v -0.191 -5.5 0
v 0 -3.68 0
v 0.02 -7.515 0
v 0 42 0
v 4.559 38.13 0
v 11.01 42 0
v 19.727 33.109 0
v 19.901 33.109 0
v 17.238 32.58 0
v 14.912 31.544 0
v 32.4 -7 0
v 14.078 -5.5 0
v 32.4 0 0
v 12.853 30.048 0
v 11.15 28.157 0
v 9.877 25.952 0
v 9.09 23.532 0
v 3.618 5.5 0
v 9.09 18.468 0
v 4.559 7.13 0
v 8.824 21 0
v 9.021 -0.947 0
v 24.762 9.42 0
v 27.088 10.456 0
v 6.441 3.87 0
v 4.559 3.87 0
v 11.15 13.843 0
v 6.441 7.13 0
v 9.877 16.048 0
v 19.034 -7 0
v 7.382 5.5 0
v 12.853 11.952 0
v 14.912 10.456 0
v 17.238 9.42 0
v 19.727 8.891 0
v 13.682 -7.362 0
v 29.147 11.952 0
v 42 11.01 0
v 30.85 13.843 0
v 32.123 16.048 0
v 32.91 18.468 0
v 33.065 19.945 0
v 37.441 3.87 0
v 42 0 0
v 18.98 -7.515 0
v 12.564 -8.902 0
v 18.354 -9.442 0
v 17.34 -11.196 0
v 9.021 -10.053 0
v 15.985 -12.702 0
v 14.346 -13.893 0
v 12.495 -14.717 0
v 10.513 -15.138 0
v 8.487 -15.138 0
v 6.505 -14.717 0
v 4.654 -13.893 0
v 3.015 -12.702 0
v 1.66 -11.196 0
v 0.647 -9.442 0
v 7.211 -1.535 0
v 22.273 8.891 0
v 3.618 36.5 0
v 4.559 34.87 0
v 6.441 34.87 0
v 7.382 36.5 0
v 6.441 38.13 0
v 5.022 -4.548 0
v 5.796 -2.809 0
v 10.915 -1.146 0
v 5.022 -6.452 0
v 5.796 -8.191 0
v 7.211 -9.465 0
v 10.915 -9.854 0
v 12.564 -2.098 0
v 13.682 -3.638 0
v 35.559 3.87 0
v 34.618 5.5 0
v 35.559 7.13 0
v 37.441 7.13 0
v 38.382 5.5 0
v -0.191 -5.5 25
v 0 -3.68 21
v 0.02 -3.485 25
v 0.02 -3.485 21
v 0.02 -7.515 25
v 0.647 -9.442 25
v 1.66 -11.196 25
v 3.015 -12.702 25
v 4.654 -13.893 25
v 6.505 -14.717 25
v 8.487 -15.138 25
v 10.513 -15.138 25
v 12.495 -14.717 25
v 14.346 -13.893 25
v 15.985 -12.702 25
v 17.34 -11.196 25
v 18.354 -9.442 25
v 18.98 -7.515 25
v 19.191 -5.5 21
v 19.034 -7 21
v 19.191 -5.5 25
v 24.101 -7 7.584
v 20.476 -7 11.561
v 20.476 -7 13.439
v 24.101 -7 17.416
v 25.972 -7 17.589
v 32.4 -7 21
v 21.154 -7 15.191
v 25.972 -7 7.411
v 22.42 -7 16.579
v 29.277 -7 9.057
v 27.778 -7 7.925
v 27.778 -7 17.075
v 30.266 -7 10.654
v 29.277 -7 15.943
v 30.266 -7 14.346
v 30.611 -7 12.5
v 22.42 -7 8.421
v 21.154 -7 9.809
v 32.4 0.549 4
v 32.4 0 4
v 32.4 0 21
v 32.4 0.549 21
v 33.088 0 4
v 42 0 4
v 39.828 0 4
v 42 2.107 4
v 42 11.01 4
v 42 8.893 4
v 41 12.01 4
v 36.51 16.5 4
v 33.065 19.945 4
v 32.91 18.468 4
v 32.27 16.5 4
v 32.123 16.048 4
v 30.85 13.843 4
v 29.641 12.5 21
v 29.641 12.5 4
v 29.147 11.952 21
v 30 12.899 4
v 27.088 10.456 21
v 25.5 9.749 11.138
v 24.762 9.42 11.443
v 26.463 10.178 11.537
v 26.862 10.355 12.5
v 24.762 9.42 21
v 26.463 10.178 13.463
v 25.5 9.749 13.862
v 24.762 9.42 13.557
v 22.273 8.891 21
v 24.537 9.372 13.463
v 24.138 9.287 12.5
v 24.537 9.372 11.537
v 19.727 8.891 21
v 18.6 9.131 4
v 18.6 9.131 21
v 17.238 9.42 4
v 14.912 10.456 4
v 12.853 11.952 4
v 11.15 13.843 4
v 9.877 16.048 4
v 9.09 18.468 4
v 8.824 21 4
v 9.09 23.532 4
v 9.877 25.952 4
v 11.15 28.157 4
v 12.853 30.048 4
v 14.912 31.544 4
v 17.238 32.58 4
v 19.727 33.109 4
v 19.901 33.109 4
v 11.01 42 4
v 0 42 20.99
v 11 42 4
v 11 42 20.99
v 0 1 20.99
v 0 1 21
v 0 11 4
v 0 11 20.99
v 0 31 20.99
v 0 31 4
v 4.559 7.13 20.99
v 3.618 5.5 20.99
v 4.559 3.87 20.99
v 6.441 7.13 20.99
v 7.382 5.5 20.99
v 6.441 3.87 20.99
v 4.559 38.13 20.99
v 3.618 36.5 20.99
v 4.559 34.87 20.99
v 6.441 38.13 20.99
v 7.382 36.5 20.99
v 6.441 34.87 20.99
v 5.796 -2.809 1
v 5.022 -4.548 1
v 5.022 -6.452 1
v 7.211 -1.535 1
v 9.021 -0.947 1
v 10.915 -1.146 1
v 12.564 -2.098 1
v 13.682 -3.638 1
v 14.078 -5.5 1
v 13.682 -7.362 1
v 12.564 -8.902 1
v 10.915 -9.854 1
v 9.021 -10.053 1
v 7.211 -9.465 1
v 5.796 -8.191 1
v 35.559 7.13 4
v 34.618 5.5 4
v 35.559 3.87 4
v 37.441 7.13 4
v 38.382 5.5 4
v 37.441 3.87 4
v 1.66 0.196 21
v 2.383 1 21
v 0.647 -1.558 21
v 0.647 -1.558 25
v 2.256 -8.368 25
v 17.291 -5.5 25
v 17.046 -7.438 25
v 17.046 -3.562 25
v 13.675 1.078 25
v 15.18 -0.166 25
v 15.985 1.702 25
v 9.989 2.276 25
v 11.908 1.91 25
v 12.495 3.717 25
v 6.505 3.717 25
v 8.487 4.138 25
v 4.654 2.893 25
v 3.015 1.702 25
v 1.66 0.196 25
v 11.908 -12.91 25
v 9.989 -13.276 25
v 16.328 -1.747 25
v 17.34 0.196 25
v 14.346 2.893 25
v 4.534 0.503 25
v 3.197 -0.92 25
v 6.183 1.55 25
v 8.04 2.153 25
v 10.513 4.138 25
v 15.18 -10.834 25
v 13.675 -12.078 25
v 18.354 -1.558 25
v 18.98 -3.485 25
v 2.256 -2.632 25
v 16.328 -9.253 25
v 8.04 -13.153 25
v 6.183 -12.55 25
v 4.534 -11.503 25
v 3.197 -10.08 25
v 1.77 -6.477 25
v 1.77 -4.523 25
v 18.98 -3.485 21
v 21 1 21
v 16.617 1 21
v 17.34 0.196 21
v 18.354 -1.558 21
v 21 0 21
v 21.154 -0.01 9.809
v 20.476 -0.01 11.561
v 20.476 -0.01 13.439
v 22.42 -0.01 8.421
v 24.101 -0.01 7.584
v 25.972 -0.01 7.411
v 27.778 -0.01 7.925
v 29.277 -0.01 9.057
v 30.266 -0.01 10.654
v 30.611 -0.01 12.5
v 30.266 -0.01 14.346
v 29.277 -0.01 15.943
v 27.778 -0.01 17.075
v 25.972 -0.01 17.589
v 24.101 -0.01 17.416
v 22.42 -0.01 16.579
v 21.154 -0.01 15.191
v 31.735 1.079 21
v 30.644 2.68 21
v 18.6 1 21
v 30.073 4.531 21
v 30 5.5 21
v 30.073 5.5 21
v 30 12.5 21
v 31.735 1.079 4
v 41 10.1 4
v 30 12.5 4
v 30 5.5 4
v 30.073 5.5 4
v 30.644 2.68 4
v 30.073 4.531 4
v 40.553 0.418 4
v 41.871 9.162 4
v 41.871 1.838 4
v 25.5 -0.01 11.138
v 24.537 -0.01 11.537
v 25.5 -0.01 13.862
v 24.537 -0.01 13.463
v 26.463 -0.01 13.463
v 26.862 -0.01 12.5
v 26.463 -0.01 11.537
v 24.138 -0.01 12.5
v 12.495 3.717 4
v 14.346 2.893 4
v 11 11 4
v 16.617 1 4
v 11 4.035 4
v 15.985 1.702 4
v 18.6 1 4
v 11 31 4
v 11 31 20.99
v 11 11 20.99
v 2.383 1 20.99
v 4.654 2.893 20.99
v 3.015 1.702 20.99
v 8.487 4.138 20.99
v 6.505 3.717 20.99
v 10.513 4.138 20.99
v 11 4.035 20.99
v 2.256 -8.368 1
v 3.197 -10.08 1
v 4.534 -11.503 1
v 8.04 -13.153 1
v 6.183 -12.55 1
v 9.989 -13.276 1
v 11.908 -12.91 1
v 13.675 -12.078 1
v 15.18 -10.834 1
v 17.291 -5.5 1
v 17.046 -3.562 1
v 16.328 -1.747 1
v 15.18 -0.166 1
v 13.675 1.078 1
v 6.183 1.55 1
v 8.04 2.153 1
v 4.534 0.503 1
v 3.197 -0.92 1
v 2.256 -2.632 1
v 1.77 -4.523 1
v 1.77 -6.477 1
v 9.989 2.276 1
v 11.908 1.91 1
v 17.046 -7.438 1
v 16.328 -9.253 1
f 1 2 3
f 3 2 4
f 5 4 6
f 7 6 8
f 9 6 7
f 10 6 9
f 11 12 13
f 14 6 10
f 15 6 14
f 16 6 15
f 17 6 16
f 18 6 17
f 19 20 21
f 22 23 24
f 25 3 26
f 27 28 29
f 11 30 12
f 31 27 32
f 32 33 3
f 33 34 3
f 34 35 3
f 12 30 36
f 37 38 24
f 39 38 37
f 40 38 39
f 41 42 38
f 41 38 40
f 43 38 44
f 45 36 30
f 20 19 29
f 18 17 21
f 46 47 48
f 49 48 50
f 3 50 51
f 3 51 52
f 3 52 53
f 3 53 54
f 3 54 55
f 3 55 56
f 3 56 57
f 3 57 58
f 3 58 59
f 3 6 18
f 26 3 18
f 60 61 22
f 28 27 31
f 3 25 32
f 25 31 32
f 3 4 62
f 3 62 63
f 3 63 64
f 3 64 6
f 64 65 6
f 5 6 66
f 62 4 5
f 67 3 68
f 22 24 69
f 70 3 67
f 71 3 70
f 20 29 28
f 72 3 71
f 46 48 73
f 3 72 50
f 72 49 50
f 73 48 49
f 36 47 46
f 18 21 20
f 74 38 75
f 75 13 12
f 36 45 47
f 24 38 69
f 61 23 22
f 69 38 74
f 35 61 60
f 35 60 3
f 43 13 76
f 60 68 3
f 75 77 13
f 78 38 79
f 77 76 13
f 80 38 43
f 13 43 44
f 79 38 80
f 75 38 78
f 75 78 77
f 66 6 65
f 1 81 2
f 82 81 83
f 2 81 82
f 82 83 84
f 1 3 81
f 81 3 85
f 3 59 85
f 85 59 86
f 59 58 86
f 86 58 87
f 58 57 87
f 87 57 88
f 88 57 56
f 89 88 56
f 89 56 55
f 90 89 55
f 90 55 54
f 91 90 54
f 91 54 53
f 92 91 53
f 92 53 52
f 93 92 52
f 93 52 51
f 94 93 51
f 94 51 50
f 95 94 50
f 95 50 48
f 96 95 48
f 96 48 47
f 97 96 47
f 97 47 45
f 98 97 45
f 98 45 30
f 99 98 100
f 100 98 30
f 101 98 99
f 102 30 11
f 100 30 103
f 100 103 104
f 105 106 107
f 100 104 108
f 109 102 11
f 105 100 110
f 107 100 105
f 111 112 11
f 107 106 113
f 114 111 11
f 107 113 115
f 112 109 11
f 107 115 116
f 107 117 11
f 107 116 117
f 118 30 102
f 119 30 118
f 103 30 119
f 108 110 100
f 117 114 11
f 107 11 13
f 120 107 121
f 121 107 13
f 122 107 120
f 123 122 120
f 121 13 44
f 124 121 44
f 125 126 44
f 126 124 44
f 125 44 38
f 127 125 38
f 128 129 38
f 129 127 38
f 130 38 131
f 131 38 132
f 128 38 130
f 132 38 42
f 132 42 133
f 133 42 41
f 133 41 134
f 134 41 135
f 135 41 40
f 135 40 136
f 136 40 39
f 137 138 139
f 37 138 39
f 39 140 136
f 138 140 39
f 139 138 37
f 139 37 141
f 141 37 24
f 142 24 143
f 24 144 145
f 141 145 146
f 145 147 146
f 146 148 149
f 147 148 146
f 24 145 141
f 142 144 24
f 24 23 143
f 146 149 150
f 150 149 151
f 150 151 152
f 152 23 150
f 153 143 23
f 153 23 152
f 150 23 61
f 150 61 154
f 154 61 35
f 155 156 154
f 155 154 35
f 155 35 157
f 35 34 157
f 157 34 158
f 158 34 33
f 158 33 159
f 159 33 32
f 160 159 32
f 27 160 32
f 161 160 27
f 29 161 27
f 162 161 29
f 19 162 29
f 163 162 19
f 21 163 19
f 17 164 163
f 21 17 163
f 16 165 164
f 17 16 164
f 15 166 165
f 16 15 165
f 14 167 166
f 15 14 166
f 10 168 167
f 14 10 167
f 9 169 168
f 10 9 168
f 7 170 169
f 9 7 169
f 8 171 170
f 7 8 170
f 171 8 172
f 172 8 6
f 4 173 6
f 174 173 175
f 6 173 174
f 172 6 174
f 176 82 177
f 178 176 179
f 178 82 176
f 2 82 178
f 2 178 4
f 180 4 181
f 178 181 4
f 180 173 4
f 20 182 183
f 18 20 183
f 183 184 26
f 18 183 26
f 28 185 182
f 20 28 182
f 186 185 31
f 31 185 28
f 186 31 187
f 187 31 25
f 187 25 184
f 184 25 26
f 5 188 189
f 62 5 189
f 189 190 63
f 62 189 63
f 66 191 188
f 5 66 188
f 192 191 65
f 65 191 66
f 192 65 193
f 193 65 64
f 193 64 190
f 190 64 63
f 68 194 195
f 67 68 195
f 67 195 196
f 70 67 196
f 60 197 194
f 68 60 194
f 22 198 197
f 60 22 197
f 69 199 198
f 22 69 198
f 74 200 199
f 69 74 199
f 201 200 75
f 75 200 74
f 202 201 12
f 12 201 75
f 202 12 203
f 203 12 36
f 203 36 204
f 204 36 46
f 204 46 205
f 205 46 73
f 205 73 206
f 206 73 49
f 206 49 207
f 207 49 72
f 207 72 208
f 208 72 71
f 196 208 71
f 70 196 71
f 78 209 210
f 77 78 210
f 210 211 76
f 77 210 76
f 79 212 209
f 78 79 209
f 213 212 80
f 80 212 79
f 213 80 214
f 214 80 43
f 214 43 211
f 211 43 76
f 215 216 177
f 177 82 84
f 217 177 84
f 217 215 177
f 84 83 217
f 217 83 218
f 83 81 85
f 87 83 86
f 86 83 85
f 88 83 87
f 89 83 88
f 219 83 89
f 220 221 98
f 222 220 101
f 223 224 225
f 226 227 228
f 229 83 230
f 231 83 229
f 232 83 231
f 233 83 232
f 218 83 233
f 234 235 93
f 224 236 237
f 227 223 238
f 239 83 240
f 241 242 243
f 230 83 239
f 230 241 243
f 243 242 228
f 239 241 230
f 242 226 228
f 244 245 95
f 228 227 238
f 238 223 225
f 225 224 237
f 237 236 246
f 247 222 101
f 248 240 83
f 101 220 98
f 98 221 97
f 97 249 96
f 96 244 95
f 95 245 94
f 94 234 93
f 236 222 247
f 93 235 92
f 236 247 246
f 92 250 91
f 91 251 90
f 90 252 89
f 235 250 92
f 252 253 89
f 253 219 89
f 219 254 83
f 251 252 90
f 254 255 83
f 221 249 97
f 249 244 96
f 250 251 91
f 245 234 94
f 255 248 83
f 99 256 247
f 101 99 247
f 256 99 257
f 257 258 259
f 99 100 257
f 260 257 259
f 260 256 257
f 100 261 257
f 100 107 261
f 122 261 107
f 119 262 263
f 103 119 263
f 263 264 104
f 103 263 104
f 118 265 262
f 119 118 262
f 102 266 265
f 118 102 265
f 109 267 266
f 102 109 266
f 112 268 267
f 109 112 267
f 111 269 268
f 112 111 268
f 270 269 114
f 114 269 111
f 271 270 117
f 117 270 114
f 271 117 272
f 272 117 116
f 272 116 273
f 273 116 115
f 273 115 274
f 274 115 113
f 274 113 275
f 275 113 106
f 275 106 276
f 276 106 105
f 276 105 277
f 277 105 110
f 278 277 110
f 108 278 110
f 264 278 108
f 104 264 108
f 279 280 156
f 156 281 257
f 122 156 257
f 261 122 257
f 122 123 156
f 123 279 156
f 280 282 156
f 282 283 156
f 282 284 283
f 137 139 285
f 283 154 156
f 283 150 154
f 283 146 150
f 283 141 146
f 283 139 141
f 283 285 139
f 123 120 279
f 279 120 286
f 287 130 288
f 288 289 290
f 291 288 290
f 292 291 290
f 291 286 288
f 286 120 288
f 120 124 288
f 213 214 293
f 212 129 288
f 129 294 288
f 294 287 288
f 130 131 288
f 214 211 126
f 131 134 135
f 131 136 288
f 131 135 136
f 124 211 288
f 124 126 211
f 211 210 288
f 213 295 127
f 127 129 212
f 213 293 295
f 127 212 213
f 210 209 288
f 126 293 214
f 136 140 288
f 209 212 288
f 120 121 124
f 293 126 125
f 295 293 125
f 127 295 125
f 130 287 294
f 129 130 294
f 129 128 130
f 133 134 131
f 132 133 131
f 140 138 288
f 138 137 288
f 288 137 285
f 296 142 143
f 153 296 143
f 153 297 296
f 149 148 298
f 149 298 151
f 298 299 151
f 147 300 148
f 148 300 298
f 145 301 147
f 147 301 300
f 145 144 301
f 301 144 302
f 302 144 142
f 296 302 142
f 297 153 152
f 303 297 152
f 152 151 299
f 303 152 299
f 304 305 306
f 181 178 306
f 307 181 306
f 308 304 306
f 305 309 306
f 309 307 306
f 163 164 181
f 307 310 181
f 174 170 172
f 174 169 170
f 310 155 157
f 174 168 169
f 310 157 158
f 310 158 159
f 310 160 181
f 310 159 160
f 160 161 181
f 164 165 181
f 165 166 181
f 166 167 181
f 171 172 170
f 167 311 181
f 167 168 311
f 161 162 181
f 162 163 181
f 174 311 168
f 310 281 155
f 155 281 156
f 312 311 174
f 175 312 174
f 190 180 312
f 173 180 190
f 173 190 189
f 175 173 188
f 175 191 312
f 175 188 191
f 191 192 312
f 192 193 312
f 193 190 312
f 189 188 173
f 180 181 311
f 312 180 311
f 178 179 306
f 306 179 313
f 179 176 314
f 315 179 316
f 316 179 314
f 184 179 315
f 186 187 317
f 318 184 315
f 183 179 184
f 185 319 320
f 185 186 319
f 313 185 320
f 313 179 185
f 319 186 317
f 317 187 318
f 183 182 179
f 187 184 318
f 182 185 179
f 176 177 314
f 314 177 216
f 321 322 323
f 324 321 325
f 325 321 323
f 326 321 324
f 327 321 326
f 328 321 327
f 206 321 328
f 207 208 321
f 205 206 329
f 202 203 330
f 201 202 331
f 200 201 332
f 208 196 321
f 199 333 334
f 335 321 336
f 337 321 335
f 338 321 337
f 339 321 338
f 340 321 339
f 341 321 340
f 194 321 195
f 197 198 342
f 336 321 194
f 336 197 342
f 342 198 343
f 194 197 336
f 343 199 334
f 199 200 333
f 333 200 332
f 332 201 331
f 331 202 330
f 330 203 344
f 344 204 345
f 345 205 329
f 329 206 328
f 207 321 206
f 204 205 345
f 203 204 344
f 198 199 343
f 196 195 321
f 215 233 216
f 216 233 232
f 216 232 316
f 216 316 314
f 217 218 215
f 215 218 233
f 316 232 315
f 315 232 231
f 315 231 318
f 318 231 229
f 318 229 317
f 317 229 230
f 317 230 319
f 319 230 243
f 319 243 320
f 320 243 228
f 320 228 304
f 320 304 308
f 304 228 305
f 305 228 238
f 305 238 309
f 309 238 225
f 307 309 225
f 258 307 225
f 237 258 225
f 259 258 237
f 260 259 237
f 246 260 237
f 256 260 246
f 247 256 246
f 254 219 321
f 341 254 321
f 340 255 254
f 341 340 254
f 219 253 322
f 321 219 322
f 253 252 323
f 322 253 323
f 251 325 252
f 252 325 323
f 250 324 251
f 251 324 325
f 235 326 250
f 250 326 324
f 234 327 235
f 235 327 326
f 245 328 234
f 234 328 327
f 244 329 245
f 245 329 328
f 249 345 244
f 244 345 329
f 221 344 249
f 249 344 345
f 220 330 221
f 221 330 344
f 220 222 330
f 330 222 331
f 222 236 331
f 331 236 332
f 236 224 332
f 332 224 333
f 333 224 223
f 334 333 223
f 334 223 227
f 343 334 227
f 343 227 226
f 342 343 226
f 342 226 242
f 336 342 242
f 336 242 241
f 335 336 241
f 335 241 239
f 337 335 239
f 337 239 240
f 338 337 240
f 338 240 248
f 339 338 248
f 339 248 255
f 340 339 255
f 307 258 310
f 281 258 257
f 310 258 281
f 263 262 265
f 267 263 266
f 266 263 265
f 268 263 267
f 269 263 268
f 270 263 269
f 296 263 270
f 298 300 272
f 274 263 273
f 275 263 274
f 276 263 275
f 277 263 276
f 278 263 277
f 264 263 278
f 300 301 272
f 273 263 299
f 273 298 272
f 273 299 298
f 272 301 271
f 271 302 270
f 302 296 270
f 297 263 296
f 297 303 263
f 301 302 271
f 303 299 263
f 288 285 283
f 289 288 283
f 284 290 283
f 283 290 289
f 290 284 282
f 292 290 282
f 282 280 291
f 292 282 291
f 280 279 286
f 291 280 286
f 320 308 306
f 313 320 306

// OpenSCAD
// file: extruder_configuration.scad
//pdiam based on Nophead's : http://hydraraptor.blogspot.com/2011/02/polyholes.html 
debug=0;

assemble= 0;
show_axles=0;

function pdiam(diam, tolerance=0.3)=debug?diam:(diam) / cos (180 / max(round(2 * diam),3))+tolerance;

//function pdiam(diam)=diam;

extruder_gear_D = 9;//12.6;
extruder_gear_length = 11;
filament_D = 1.75;

m3_D=3;
m8_D=8;

nema_size = 42;
nema_holes_distance = 31;
nema_axle_length = 24;
nema_axle_cutout_D = 24;

shaft_D = 5;

bearing625_D = 16.25;
bearing625_height=5;

bearing608_D	= 22;
bearing608_D_clr	= 24;
bearing608_width	= 7;
bearing608_clr	= bearing608_width+1;
bearing608_m8	= 14;

bearingLM8UU_height	= 24;
bearingLM8UU_D	= 15;
holder_LM8UU_D = 1;

thickness = 4;
depth = 17;
idler_depth = depth - 1;

echo( "Required M3 len : ");
echo( 2*thickness + depth + 4);

holder_offset_x = bearingLM8UU_D / 2 + thickness / 2;
holder_offset_y = -bearingLM8UU_D/2+ thickness / 2;

pneufit_D = 9.8;
pneufit_depth = 7;
filament_path_width = pneufit_D + 4;
filament_path_height = nema_size/4 + 2;
mo = 0.01;
da6 = 1/cos(180/6)/2;

idler_angle = 0;
idler_rotation_tolerance = 1;

hole_distance = (nema_size - nema_holes_distance) / 2; 
holes = 
[
	[hole_distance, hole_distance, -mo],
	[nema_size - hole_distance, hole_distance, -mo],
	[hole_distance, nema_size - hole_distance, -mo],
	//[nema_size - hole_distance, nema_size - hole_distance, -mo],
];

pillar_width = hole_distance*2;
pillar_offset = hole_distance - pillar_width / 2;
pillars = 
[
	[pillar_offset,pillar_offset,thickness-mo],
	[pillar_offset,nema_size - pillar_offset - pillar_width,thickness-mo],
];

holder_holes_distance = depth / 2 - m3_D - 1;
holder_holes = [-holder_holes_distance,holder_holes_distance];
// main file
include<extruder_configuration.scad>

main();

module main()
{
	difference()
	{
		// main body
		union()
		{
			cube([nema_size, nema_size, thickness]);

			// make sure there is no small holes between lm8uu and pneufit holders
			translate([0,-4,0])
			cube([nema_size/2, 5, thickness+depth]);
 
			// filament guide
			translate([nema_size/2-filament_path_width/2+extruder_gear_D/2, 0, thickness-mo])
			cube([filament_path_width, filament_path_height, depth+mo]);
	
			for (p = pillars) 
			{
				translate(p)
				cube([pillar_width, pillar_width, depth]);		
			}

			// lm8uu holder
			translate([holder_offset_x, holder_offset_y,0])
			cylinder(r=pdiam(bearingLM8UU_D)/2 + thickness/2, h=bearingLM8UU_height+holder_LM8UU_D);

			// pneufit hole
			translate([nema_size/2-(filament_path_width)/2+extruder_gear_D/2, -pneufit_depth, 0])
			cube([filament_path_width,pneufit_depth, thickness + depth]);
		}

		// material cutout
		translate([0,0,-mo])
		linear_extrude(height=thickness+2*mo, convexity=1)
		polygon([[nema_size+mo, nema_size+mo], [nema_size+mo, pillar_width], [pillar_width,nema_size + mo]], center=false);

		// lm8uu holder
		translate([holder_offset_x, holder_offset_y,holder_LM8UU_D])
		cylinder(r=pdiam(bearingLM8UU_D,0.5)/2, h=bearingLM8UU_height+thickness+2*mo);
		translate([holder_offset_x, holder_offset_y,-mo])
		cylinder(r=pdiam(m8_D,1)/2, h=holder_LM8UU_D+2*mo);

		// axle cutout
		translate([nema_size/2, nema_size/2, -mo])
		cylinder(r=pdiam(nema_axle_cutout_D) / 2, h=thickness+ depth + 2 * mo);

		// idler rotation tolerance
		translate([nema_size - hole_distance * 2 - idler_rotation_tolerance, hole_distance, thickness])
		cube([2 * hole_distance, hole_distance * 2, depth+mo]);

		translate([nema_size - hole_distance, hole_distance, thickness])
		cylinder(r=hole_distance + idler_rotation_tolerance, h=depth + mo);

		// filament path
		translate([nema_size/2+extruder_gear_D/2, -mo, thickness + depth / 2])
		rotate([-90, 0, 0])
		cylinder(r=pdiam(filament_D,0.25) / 2, h=100, $fn=8);

		// pneufit hole
		translate([nema_size/2+extruder_gear_D/2, -pneufit_depth - mo, thickness + depth / 2])
		rotate([-90, 0, 0])
		#cylinder(r=pdiam(pneufit_D)/ 2, h=pneufit_depth);

		// motor holes
		for (h = holes) 
		{
			translate(h)
			cylinder(r=pdiam(m3_D)/2, h=depth + thickness+mo*2);
		}
	}		

	if(show_axles > 0)
	{
		translate([nema_size/2,nema_size/2,0])
		color("Grey")cylinder(r=shaft_D/2,h=nema_axle_length);

		translate([nema_size/2,nema_size/2,6])
		color("Grey")cylinder(r=extruder_gear_D/2,h=extruder_gear_length);
	}	
}
